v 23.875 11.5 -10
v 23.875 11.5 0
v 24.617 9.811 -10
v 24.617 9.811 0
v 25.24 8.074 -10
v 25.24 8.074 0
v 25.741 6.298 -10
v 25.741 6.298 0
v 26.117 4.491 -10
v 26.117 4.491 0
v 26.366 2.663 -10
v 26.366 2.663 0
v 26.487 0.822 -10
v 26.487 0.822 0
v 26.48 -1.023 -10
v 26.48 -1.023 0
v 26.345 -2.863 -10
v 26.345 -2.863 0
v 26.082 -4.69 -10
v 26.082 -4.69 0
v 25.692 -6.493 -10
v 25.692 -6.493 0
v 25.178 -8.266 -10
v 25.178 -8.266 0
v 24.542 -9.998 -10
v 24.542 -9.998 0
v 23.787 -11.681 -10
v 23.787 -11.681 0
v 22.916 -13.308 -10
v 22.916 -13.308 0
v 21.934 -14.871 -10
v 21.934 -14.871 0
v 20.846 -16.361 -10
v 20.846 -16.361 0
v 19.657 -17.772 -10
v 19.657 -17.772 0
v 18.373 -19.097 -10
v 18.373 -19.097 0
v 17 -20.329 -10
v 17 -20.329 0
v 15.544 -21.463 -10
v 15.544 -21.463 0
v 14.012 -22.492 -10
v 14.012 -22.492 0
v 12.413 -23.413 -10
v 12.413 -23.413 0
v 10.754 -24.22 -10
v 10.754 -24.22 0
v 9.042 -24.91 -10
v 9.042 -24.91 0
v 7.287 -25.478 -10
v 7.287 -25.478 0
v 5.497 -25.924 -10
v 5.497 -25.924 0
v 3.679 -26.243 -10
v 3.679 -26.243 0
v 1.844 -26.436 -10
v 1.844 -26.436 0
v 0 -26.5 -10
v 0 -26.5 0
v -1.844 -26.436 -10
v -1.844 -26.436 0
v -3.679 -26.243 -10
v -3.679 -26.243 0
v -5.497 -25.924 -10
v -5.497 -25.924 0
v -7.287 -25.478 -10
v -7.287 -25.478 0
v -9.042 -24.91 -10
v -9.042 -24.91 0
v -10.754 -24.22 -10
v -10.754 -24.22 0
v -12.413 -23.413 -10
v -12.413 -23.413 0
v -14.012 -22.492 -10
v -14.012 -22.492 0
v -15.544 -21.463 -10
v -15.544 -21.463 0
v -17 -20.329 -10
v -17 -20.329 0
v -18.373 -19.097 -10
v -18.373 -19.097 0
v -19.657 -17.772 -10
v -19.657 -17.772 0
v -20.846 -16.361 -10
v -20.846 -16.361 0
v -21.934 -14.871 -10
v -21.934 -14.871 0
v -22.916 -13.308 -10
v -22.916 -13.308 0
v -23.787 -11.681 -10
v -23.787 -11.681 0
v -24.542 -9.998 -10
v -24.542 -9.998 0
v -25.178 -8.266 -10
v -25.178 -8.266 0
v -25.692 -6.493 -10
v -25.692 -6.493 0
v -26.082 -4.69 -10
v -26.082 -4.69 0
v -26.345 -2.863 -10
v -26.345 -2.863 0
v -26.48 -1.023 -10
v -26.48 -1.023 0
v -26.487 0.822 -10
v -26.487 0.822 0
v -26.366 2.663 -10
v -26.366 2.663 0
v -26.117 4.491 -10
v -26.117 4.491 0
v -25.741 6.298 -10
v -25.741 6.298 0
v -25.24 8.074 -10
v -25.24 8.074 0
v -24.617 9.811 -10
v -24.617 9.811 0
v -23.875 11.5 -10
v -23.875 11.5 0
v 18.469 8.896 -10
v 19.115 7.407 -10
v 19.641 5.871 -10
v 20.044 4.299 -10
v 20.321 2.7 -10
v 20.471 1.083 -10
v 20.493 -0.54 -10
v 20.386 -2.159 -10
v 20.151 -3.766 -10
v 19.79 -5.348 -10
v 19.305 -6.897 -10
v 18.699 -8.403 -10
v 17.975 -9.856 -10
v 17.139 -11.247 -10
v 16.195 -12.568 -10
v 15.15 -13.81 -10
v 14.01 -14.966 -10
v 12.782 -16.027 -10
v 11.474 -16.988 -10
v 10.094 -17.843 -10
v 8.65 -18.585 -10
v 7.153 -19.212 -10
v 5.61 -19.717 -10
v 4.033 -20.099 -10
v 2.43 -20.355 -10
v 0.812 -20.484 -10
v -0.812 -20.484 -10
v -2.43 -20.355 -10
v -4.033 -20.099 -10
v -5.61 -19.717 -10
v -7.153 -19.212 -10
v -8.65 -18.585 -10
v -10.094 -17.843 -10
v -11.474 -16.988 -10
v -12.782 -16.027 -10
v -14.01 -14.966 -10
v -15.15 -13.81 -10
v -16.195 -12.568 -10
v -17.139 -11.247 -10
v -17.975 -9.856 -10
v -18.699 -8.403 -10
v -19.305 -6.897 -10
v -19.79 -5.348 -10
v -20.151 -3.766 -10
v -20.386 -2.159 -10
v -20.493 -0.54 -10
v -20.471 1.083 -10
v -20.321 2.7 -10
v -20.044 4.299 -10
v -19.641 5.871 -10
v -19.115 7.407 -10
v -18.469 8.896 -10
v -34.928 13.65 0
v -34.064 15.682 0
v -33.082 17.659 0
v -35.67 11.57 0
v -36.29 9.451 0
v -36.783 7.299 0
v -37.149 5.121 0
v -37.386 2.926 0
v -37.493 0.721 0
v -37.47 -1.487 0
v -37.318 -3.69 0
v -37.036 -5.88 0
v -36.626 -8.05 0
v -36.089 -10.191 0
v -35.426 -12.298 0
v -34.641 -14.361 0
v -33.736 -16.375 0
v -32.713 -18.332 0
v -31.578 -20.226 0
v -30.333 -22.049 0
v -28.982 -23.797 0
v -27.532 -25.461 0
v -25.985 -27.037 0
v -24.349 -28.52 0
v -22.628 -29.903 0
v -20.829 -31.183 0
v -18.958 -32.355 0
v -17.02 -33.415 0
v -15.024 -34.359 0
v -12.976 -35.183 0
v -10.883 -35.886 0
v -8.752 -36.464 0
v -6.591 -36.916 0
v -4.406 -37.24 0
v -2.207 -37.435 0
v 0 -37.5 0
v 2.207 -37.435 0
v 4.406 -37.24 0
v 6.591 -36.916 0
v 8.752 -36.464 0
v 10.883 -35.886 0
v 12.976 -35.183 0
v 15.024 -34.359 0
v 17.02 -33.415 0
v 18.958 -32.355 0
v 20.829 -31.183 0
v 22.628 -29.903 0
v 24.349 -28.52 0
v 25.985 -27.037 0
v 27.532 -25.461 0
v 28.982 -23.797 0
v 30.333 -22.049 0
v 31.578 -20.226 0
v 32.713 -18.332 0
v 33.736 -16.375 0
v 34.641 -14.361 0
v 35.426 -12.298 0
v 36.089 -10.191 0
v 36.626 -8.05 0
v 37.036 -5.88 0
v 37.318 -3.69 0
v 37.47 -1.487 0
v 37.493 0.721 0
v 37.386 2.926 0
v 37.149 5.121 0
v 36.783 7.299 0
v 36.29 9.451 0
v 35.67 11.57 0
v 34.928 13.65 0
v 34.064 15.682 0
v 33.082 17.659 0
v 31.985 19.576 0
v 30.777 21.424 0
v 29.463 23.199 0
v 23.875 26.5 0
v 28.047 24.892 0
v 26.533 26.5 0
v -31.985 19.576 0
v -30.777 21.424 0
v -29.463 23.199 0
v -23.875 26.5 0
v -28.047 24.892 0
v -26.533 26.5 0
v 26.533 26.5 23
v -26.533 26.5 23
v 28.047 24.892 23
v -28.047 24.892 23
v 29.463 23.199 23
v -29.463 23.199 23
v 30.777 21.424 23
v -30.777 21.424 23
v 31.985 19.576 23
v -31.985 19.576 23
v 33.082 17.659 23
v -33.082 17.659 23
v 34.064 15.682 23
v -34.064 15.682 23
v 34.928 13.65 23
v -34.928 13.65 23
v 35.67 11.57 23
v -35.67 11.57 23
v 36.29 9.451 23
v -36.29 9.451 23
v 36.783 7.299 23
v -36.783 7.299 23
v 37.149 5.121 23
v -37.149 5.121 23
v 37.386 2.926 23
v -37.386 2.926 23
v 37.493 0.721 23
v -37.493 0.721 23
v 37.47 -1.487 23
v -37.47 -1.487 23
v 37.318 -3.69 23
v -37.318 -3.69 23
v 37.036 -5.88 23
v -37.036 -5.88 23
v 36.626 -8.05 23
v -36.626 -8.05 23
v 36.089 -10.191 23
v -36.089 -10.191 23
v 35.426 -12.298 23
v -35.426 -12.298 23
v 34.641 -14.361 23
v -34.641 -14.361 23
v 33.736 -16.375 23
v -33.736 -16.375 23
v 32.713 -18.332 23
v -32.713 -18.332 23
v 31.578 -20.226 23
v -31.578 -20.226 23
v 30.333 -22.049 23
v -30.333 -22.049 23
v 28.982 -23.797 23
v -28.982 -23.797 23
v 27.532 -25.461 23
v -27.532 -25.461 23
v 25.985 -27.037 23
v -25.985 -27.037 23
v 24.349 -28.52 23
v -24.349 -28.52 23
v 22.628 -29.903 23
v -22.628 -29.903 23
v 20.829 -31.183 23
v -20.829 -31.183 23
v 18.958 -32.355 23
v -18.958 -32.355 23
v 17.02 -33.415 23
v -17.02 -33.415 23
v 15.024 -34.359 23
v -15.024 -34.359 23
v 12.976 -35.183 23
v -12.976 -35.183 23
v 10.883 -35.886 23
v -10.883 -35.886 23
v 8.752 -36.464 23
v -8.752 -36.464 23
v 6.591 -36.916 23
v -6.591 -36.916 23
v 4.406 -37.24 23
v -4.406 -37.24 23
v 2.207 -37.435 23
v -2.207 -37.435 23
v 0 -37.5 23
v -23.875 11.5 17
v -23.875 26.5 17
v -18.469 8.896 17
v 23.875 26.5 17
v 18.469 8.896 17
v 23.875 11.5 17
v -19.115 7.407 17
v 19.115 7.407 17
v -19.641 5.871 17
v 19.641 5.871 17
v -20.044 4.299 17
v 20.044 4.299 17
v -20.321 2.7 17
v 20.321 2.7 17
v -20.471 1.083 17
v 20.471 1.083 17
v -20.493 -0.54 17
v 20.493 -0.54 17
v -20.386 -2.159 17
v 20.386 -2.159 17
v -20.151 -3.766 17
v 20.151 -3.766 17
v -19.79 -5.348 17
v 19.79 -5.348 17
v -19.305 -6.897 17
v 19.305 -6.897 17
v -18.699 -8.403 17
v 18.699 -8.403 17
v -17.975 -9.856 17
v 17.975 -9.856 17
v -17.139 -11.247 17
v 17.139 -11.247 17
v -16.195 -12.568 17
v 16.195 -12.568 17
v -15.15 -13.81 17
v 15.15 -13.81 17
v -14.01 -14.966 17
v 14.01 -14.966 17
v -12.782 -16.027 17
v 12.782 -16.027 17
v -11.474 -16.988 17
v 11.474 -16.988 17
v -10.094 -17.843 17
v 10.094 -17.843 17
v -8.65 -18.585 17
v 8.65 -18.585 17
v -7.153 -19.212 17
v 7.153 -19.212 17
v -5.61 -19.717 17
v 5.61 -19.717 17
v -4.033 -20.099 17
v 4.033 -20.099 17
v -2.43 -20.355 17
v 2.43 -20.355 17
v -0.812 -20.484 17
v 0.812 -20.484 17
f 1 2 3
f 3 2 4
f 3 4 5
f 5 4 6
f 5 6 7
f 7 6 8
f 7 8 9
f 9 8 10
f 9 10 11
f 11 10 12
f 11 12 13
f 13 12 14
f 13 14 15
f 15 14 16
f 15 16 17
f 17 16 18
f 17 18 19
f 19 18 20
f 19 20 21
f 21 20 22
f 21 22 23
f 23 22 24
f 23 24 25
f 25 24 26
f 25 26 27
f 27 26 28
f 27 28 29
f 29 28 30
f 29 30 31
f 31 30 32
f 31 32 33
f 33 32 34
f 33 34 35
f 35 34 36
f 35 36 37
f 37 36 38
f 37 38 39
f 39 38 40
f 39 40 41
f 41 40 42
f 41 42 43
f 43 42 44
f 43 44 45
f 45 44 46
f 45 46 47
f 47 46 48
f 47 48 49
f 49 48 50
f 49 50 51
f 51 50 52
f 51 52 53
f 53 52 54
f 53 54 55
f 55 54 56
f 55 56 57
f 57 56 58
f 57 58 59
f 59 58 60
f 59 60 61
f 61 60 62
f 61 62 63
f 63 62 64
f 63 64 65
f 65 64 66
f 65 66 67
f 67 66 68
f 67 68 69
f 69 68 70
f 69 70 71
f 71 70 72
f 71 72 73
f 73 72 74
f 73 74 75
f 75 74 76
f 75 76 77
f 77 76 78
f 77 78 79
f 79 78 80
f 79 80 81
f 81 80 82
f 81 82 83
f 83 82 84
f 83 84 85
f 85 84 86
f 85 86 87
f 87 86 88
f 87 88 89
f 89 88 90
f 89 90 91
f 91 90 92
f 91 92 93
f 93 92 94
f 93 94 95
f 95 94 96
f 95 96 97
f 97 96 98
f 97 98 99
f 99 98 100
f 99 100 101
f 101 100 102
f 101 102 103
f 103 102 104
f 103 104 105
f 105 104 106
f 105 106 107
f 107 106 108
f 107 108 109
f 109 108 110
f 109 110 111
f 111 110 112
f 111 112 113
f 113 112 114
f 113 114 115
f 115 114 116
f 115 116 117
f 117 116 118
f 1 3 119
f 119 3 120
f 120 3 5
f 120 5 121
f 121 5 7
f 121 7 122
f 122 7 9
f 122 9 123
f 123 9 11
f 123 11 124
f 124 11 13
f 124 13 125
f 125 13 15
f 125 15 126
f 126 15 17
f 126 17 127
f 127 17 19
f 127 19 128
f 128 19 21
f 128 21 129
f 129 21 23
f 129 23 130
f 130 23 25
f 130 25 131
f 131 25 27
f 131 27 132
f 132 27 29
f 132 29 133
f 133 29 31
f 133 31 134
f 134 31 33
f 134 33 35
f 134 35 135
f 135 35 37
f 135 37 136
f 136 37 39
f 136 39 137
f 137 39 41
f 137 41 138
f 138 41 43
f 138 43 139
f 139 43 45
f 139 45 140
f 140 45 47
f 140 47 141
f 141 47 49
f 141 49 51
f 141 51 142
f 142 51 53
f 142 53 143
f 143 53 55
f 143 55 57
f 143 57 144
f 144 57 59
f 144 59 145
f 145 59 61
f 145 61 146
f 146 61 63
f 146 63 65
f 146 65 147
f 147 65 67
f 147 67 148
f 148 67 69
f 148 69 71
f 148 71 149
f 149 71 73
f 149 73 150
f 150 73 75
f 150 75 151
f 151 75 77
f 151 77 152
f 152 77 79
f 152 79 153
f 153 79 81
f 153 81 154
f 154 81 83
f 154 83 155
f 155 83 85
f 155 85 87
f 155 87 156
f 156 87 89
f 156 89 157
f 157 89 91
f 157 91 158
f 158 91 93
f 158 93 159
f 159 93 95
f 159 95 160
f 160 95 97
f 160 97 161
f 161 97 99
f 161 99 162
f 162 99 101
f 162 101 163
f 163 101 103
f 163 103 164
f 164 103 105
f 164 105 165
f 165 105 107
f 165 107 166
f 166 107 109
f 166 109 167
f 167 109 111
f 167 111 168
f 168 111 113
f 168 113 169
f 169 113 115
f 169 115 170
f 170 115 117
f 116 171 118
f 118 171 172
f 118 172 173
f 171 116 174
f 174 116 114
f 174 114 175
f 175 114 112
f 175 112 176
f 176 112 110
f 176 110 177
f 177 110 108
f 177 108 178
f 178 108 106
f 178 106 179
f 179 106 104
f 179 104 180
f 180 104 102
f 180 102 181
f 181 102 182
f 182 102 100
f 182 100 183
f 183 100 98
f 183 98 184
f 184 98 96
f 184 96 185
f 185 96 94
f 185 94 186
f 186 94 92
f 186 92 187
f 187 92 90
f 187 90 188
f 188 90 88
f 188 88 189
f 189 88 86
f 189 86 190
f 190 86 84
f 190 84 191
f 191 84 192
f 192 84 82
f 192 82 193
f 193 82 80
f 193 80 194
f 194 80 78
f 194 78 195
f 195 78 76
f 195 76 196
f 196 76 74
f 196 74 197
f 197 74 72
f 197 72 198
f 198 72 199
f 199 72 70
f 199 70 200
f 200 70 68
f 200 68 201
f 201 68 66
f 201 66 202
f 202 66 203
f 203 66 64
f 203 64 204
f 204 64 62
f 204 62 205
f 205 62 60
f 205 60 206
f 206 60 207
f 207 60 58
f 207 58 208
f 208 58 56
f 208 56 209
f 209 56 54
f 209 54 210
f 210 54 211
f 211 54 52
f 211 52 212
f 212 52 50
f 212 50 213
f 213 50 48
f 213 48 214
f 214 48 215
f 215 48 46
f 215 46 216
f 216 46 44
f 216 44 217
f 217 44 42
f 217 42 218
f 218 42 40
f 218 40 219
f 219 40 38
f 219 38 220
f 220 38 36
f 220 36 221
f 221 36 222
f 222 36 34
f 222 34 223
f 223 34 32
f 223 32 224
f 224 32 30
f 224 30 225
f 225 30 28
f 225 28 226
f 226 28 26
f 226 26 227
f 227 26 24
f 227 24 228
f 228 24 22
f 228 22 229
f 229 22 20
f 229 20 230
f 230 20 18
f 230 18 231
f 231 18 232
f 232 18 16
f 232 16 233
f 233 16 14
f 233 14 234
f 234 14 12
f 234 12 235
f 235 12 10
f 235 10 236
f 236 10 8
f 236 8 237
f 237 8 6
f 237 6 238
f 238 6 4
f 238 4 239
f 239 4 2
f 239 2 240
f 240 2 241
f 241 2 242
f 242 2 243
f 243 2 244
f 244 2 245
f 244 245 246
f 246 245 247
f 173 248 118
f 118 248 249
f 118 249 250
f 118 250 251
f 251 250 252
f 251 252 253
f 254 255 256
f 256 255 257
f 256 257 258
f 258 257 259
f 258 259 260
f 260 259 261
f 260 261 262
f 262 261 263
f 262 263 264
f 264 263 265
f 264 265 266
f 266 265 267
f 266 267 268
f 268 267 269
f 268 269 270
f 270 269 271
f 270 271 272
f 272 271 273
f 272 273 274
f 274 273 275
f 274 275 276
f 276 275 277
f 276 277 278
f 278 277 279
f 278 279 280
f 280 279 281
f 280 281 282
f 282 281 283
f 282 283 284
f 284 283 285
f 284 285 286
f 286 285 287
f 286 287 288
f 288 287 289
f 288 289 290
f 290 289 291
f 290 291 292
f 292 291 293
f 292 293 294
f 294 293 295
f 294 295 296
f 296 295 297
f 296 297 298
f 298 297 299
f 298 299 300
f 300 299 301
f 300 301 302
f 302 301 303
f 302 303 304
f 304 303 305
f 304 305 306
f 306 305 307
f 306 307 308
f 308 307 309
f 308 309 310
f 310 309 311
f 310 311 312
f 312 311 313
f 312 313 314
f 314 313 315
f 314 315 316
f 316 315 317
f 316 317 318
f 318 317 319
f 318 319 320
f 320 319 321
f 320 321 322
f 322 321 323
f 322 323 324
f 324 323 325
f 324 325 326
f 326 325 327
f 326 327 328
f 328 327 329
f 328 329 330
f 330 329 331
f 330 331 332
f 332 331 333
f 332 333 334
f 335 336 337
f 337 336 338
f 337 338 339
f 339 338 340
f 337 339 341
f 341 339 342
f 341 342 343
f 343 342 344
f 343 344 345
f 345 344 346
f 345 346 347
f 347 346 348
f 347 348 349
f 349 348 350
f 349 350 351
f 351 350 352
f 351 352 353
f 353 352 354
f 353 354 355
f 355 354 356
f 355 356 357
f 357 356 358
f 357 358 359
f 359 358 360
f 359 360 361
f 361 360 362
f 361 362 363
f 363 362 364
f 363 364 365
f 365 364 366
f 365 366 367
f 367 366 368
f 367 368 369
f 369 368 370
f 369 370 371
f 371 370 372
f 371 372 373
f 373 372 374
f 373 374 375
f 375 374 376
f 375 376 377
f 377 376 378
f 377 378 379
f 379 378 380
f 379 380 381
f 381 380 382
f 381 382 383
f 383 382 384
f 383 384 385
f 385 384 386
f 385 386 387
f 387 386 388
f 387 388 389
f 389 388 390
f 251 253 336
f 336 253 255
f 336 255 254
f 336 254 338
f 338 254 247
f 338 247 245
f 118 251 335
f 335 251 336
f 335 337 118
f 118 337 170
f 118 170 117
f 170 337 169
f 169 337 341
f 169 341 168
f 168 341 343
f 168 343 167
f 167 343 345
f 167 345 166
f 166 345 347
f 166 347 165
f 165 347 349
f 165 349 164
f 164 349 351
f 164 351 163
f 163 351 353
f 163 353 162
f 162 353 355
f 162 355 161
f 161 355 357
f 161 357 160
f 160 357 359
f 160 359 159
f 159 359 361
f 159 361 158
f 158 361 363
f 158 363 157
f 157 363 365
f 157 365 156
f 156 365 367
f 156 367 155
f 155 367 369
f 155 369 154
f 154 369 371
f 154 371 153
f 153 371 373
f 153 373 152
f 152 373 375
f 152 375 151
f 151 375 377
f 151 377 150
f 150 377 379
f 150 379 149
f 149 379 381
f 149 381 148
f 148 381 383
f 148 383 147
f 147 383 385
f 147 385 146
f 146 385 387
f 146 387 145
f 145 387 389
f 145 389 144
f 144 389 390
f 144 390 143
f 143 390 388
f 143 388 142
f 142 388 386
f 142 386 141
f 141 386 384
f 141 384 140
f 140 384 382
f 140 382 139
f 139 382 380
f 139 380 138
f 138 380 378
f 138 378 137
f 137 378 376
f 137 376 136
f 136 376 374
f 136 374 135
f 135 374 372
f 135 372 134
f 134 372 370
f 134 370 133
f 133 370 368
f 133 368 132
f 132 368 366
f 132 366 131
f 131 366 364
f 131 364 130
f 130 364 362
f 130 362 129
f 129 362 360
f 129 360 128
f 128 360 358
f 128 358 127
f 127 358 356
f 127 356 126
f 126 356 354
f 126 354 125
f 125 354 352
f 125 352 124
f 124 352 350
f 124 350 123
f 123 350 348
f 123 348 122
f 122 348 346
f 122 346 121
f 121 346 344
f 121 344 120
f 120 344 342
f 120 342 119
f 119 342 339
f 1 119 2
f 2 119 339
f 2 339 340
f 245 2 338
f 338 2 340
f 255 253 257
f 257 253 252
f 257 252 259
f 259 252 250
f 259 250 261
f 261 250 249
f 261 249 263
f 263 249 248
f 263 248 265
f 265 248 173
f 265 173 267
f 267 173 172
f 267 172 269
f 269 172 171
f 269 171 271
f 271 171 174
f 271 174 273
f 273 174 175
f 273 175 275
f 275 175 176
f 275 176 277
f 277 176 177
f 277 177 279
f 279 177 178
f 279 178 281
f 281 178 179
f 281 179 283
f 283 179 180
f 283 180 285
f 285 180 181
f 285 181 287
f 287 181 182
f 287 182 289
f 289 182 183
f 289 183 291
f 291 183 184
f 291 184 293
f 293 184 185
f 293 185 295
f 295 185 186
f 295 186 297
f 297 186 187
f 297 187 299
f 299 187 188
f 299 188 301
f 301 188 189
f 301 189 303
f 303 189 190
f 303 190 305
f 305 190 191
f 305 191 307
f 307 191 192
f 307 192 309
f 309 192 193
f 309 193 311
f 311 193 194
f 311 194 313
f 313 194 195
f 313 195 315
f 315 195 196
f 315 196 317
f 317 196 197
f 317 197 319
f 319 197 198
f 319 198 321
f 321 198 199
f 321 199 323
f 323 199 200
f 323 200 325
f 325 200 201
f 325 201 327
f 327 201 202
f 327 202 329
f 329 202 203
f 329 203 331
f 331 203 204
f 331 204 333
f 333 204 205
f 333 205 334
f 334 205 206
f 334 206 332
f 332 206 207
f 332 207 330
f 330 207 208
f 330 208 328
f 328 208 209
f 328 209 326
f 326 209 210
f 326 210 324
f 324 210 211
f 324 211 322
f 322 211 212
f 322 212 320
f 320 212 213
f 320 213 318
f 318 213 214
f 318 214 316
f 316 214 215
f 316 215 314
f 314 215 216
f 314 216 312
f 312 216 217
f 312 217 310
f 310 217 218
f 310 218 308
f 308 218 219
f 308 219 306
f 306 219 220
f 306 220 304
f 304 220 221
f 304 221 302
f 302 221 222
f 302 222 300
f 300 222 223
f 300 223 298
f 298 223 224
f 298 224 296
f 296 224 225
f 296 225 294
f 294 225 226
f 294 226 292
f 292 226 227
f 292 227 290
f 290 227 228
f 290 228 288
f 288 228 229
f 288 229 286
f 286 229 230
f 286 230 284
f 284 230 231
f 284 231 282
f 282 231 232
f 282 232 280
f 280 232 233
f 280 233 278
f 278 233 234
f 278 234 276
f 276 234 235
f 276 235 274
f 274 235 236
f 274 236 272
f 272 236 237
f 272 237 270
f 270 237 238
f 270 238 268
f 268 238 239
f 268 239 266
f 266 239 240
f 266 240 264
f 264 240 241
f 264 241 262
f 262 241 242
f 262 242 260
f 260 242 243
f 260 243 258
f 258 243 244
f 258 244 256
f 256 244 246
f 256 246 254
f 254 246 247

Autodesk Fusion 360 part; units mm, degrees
sketch "Sketch1" plane through (0, 0, 0) normal (0, 0, 1) x (1, 0, 0)
  circle A0 centre (0, 0) radius 26.5
  circle A1 centre (0, 0) radius 37.5
  line L0 (-35.6931, 26.5) -> (64.3069, 26.5)
  line L1 (64.3069, 26.5) -> (64.3069, 11.5)
  line L2 (64.3069, 11.5) -> (-35.6931, 11.5)
  line L3 (-35.6931, 11.5) -> (-35.6931, 26.5)
  line L4 (-35.6931, 26.5) -> (64.3069, 26.5)
  line L5 (64.3069, 26.5) -> (64.3069, 56.5)
  line L6 (64.3069, 56.5) -> (-35.6931, 56.5)
  line L7 (-35.6931, 56.5) -> (-35.6931, 26.5)
  circle A2 centre (0, 0) radius 20.5
  line L8 (-23.8747, 11.5) -> (-23.8747, 56.5)
  line L9 (23.8747, 11.5) -> (23.8747, 56.5)
  line L10 (18.4691, 8.8962) -> (23.8747, 11.5)
  line L11 (-23.8747, 11.5) -> (-18.4691, 8.8962)
  dimension "d1" = 53
  dimension "d2" = 75
  dimension "d3" = 100
  dimension "d4" = 15
  dimension "d5" = 30
  dimension "d12" = 41
extrude "Extrude1" add sketch "Sketch1" along normal blind 17 contours A0 A2 L10 L11 | A0 A1 L2 | A1 L0 L2 L4 L9 | A1 L0 L2 L4 L8
extrude "Extrude2" add sketch "Sketch1" along normal blind 6 from surface at 17 contours A0 A2 L10 L11 | A0 A1 L2 | A0 L2 A2 | A1 L0 L2 L4 L9 | L2 A2 L10 | A0 L0 L4 L9 | A0 L0 L4 L8 | A1 L0 L2 L4 L8 | L2 A2 L11 | L2 A2 | L2 A2
extrude "Extrude3" add sketch "Sketch1" against normal blind 10 contours A0 A2 L10 L11
equation "d2 = 53 mm + ( 2 * 11 ) * 1 mm"
equation "d12 = 53 mm - 12 mm"
